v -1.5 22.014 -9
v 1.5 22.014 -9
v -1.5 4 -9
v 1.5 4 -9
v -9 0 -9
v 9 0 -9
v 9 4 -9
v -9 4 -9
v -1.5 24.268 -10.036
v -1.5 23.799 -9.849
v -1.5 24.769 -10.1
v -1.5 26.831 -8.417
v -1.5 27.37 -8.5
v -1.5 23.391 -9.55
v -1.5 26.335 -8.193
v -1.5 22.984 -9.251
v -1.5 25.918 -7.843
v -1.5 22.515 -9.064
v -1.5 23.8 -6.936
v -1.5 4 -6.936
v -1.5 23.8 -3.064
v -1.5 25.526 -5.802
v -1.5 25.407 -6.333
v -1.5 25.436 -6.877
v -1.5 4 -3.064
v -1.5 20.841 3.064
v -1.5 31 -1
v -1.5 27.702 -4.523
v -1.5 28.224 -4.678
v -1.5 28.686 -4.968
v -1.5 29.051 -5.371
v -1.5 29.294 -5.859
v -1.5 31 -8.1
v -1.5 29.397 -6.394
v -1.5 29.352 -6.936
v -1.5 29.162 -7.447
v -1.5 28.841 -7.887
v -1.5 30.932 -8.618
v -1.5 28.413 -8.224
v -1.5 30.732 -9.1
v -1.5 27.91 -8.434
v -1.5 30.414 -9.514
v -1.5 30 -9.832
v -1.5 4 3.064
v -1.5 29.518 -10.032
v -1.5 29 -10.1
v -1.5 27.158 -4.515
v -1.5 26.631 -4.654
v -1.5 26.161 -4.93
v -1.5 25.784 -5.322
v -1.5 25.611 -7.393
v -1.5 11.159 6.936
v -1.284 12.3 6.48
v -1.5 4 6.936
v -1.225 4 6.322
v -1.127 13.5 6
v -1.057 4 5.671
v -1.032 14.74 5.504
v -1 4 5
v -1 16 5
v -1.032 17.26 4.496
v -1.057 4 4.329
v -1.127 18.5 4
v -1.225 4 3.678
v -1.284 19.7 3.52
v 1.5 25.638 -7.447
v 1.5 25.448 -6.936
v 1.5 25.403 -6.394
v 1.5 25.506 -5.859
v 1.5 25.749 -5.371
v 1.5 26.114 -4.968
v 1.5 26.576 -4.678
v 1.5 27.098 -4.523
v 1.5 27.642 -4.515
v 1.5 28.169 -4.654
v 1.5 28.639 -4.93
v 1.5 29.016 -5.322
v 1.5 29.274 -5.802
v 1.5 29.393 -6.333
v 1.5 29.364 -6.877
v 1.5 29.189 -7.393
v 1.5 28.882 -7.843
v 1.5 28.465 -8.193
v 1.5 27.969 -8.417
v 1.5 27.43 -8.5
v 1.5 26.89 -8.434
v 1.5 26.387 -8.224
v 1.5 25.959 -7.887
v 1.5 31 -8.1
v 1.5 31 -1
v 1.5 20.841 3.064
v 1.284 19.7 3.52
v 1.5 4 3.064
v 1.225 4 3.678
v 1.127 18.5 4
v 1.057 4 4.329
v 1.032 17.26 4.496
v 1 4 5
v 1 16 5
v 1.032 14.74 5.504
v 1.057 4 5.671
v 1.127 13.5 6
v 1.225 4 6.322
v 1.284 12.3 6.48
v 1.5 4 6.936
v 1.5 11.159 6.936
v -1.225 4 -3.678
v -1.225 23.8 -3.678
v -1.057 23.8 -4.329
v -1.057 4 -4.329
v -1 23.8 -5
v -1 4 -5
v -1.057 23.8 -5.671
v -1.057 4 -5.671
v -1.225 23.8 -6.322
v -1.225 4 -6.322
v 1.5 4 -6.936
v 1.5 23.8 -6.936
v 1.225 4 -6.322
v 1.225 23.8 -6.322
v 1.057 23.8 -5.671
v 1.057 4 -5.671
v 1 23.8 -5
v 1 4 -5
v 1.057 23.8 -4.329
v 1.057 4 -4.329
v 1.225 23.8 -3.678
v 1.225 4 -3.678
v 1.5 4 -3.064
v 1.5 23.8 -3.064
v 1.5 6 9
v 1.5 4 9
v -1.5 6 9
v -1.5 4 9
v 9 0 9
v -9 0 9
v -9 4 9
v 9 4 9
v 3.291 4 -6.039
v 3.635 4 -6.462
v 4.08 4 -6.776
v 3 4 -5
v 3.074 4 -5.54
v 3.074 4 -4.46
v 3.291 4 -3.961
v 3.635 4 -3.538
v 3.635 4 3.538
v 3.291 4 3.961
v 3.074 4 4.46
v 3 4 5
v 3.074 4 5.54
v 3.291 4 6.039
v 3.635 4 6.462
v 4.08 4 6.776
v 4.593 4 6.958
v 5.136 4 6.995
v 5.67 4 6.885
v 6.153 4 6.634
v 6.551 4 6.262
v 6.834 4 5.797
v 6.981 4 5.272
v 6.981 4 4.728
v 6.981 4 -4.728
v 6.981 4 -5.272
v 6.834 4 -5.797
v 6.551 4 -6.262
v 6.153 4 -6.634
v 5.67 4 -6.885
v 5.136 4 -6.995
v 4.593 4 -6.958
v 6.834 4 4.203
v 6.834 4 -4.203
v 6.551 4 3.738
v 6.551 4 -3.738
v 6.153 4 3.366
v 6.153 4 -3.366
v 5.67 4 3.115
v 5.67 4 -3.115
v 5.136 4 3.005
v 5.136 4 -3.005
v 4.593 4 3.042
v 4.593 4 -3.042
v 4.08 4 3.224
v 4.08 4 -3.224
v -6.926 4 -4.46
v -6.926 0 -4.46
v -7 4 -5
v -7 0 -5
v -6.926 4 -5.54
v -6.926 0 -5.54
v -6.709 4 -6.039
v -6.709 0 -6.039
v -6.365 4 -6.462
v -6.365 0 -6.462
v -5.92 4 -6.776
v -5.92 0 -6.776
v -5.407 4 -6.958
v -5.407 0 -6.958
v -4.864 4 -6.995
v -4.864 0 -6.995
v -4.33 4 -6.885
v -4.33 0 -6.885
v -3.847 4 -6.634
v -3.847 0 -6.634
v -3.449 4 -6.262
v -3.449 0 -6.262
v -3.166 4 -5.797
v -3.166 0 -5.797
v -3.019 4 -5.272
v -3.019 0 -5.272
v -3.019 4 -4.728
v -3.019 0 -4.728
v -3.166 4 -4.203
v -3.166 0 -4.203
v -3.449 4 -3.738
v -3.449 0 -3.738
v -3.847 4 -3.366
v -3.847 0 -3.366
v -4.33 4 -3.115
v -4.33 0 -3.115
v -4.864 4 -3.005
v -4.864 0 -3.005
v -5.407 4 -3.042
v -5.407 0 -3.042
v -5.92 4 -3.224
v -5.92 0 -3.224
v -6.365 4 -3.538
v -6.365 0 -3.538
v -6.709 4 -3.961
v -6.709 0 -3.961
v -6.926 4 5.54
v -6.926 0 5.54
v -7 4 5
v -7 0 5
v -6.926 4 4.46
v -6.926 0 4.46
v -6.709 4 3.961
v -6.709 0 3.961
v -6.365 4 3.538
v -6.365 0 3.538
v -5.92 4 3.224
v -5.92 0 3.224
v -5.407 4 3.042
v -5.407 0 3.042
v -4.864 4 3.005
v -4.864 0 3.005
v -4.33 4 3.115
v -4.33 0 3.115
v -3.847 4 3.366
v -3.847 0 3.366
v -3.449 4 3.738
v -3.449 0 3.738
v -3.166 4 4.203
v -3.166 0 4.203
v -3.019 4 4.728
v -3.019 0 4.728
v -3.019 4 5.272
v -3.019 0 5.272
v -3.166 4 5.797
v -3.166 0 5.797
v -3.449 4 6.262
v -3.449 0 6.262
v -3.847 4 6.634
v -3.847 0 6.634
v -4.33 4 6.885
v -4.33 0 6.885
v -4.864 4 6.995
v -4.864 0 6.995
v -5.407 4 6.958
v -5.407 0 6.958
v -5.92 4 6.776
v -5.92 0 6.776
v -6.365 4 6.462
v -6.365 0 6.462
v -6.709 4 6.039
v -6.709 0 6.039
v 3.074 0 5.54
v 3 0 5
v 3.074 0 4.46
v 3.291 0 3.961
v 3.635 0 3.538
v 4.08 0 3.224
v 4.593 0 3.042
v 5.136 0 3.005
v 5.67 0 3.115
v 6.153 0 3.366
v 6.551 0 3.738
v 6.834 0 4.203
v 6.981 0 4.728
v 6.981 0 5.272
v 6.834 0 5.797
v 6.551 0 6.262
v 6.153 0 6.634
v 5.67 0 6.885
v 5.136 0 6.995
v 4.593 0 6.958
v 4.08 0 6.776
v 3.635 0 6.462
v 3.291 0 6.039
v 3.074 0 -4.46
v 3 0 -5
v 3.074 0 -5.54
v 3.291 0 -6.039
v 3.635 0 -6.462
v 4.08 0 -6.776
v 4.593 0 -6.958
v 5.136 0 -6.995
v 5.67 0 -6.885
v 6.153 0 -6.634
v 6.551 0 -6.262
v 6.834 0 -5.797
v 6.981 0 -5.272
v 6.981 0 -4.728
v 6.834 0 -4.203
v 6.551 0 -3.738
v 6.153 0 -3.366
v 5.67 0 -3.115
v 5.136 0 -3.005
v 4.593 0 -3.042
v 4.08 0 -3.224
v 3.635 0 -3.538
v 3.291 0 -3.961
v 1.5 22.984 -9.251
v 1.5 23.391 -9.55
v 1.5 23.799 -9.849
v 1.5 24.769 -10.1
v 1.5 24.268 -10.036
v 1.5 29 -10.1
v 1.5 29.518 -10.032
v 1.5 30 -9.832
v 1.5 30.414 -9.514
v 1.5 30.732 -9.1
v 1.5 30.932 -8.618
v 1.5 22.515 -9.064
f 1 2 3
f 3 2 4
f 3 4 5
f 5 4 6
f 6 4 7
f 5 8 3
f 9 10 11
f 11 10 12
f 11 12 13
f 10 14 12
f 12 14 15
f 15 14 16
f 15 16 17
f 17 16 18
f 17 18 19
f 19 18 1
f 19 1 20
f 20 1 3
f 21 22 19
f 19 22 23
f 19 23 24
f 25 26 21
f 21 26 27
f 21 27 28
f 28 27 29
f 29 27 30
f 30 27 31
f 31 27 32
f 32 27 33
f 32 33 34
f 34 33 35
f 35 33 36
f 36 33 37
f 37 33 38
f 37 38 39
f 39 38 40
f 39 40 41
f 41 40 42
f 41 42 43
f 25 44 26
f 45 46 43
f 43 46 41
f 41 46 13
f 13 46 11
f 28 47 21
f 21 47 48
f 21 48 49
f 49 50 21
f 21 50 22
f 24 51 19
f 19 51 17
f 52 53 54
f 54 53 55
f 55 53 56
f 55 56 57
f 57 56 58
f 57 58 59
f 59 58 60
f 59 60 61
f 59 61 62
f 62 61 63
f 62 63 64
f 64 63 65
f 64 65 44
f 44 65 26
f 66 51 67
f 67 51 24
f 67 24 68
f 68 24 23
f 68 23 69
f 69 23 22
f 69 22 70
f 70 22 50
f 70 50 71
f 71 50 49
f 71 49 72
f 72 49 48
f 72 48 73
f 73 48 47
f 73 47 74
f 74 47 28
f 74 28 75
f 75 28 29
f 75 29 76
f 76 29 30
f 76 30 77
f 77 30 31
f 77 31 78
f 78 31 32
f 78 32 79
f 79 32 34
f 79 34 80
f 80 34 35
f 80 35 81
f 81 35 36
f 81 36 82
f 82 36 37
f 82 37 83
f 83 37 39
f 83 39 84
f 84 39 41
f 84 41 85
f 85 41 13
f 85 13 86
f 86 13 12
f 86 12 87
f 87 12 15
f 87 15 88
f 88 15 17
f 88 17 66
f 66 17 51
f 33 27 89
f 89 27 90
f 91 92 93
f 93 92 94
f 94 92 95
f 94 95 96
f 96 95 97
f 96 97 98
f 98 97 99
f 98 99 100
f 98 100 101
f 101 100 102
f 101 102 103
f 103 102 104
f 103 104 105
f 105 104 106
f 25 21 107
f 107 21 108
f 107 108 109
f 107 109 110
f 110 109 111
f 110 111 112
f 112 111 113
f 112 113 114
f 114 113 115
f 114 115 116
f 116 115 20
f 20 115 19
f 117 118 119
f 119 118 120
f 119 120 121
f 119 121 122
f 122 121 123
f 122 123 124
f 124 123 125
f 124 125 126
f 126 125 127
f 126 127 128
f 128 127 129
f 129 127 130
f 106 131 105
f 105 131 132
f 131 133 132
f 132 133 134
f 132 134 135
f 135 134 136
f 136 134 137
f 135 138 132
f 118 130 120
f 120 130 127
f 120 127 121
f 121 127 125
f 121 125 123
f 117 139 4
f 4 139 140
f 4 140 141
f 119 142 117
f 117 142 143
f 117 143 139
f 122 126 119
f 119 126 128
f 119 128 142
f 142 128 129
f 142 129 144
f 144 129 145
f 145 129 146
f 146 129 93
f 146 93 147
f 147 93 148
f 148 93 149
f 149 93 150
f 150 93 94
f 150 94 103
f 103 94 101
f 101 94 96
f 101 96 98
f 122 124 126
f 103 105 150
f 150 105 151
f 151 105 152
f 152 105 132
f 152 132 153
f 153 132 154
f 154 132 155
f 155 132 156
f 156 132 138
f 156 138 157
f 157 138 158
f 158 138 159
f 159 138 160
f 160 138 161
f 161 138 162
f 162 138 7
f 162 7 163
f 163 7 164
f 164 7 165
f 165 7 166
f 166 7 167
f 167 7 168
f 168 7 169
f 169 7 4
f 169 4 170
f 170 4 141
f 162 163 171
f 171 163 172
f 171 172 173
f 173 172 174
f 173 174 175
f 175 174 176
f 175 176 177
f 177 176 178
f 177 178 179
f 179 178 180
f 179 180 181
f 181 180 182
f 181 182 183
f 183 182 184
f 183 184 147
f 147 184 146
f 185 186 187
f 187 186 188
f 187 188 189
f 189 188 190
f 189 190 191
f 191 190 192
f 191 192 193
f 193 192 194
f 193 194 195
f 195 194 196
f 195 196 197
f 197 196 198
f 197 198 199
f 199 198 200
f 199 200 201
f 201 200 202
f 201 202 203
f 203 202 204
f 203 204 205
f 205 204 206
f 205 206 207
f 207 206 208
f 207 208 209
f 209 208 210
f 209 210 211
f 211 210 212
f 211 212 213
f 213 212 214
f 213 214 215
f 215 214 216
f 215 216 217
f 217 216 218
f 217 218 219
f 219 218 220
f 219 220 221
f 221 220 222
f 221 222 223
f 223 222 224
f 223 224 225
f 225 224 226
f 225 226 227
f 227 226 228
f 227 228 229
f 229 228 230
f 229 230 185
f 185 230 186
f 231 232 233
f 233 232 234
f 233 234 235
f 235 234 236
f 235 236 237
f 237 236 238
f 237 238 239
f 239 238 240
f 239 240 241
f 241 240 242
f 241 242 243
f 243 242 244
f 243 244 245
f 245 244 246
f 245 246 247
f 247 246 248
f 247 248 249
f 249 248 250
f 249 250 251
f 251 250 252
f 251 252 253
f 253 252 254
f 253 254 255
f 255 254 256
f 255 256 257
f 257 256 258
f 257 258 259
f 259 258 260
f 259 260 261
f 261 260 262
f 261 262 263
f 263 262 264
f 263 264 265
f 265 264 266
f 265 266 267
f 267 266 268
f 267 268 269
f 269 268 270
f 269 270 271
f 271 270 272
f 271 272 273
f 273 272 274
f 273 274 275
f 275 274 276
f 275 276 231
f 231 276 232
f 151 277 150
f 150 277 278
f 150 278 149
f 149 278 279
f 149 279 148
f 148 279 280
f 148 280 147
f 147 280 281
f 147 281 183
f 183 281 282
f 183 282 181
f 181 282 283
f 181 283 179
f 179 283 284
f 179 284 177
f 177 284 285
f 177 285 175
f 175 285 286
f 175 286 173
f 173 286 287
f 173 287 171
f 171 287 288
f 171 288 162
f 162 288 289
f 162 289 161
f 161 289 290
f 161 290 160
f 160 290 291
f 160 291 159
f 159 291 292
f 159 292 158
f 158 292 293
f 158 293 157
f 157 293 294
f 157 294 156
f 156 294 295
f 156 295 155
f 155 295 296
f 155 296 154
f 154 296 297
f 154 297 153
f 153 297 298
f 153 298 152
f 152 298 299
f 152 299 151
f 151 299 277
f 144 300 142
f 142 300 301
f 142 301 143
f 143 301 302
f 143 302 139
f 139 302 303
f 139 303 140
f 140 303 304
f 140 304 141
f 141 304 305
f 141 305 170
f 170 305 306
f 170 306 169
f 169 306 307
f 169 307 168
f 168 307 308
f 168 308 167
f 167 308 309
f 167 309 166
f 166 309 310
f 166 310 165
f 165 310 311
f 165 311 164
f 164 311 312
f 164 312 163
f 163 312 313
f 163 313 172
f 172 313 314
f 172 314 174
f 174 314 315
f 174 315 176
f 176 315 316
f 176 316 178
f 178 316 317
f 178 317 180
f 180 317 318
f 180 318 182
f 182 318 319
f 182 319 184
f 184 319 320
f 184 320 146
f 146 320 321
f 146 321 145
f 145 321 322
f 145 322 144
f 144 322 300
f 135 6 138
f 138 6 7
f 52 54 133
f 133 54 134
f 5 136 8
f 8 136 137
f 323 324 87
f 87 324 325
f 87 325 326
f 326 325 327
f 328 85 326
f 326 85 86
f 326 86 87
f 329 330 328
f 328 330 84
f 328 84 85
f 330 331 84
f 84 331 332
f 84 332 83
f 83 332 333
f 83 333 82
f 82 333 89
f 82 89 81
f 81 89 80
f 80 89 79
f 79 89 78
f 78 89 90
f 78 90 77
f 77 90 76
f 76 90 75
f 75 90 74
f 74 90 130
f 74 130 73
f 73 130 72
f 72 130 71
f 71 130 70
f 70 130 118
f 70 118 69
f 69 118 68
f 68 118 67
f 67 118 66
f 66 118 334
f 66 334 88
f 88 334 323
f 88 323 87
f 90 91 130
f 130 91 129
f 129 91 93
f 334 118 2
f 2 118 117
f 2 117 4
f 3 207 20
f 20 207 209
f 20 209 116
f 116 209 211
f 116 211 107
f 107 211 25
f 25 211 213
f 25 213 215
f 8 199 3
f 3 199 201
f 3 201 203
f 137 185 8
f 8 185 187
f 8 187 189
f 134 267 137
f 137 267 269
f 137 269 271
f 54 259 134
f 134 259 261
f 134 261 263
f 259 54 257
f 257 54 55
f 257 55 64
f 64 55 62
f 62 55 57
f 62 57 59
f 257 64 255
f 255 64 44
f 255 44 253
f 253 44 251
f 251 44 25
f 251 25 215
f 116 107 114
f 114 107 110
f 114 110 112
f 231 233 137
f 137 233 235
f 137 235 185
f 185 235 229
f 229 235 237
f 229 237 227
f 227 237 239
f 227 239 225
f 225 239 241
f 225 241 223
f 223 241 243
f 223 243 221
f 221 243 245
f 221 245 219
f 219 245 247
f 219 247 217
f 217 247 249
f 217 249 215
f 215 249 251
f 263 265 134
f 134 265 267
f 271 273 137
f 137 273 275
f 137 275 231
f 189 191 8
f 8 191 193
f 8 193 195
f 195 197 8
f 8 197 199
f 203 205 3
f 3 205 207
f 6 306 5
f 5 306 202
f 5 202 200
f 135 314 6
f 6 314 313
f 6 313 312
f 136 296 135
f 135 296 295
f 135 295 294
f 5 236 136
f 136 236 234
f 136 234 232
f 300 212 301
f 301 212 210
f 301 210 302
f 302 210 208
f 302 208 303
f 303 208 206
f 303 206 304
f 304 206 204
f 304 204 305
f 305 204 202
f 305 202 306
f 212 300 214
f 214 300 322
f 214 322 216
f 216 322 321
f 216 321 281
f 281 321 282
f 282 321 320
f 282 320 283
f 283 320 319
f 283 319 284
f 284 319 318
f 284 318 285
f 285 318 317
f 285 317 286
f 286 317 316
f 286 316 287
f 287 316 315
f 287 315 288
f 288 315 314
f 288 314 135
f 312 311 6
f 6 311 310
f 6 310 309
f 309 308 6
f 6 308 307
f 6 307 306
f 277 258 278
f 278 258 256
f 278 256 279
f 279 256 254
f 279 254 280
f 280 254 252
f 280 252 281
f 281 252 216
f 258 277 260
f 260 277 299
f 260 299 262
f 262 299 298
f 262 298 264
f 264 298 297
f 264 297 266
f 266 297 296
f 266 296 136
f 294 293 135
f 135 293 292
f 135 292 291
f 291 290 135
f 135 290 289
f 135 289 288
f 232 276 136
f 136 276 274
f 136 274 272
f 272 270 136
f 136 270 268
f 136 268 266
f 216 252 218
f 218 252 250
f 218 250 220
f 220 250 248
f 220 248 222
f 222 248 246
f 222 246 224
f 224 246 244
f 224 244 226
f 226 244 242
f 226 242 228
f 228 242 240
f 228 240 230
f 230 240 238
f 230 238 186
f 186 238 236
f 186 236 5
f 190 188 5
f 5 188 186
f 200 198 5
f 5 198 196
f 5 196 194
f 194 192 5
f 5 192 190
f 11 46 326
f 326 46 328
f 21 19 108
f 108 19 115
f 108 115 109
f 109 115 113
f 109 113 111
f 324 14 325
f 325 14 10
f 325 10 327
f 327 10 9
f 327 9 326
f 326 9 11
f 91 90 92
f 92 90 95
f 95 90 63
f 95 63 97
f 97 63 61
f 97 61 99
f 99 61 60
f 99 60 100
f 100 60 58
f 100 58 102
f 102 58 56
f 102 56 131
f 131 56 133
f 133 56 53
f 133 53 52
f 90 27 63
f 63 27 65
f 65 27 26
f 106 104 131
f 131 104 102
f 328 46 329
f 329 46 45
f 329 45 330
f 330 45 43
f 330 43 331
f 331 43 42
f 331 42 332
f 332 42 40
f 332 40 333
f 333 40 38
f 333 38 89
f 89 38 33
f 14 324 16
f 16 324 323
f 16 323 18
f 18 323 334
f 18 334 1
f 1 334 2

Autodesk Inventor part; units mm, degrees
ref_plane "YZ Plane" through (0, 0, 0) normal (1, 0, 0) x (0, 1, 0)
ref_plane "XZ Plane" through (0, 0, 0) normal (0, 1, 0) x (-1, 0, 0)
ref_plane "XY Plane" through (0, 0, 0) normal (0, 0, 1) x (1, 0, 0)
sketch "Sketch1" plane through (0, 0, 0) normal (0, 1, 0) x (-1, 0, 0)
  line L0 (-5, 5) -> (5, 5)
  line L1 (5, 5) -> (5, -5)
  line L2 (5, -5) -> (-5, -5)
  line L3 (-5, -5) -> (-5, 5)
  line L4 (-5, 5) -> (5, -5) construction
  line L5 (5, 5) -> (-5, -5) construction
  circle A0 centre (5, 5) radius 2
  circle A1 centre (5, -5) radius 2
  circle A2 centre (-5, 5) radius 2
  circle A3 centre (-5, -5) radius 2
  line L6 (-9, 9) -> (9, 9)
  line L7 (9, 9) -> (9, -9)
  line L8 (9, -9) -> (-9, -9)
  line L9 (-9, -9) -> (-9, 9)
  line L10 (-9, 9) -> (9, -9) construction
  line L11 (9, 9) -> (-9, -9) construction
  point P0 (0, 0)
  dimension "d0" = 10
  dimension "d1" = 10
  dimension "d2" = 4
  dimension "d3" = 4
  dimension "d4" = 4
  dimension "d5" = 4
  dimension "d6" = 18
  dimension "d7" = 18
extrude "Extrusion1" add sketch "Sketch1" along normal blind 4 contours L0 A0 L1 A1 L2 A3 L3 A2 | L6 L7 L8 L9
sketch "Sketch2" plane through (0, 4, 0) normal (0, 1, 0) x (1, 0, 0)
  line L0 (9, 9) -> (-9, 9) projected
  line L1 (1.5, -9) -> (-1.5, -9)
  line L2 (-1.5, -9) -> (-1.5, 9)
  line L3 (-1.5, 9) -> (1.5, 9)
  line L4 (1.5, 9) -> (1.5, -9)
  line L5 (1.5, -9) -> (-1.5, 9) construction
  line L6 (-1.5, -9) -> (1.5, 9) construction
  circle A0 centre (-5, -5) radius 2 projected
  circle A1 centre (-5, -5) radius 4
  circle A2 centre (-5, 5) radius 2 projected
  circle A3 centre (-5, 5) radius 4
  circle A4 centre (5, -5) radius 2 projected
  circle A5 centre (5, -5) radius 4
  circle A6 centre (5, 5) radius 2 projected
  circle A7 centre (5, 5) radius 4
  point P0 (0, 0)
  point P1 (1.5, -6.9365)
  point P2 (1.5, -3.0635)
  point P3 (1.5, 3.0635)
  point P4 (1.5, 6.9365)
  point P5 (-1.5, 6.9365)
  point P6 (-1.5, 3.0635)
  point P7 (-1.5, -3.0635)
  point P8 (-1.5, -6.9365)
  dimension "d10" = 3
  dimension "d11" = 8
  dimension "d12" = 8
  dimension "d13" = 8
  dimension "d14" = 8
extrude "Extrusion2" add sketch "Sketch2" along normal blind 27 contours L4 A7 A5 L1 L2 A1 A3 L0
sketch "Sketch3" plane through (1.5, 4, 3.0635) normal (1, 0, 0) x (0, 0, -1)
  line L0 (-5.9365, -4) -> (-5.9365, 0) projected
  line L1 (-5.9365, -4) -> (-5.9365, 23.4)
  line L2 (-5.9365, 0) -> (-5.9365, 27) projected
  line L3 (-5.9365, 23.4) -> (12.0635, 23.4)
  line L4 (12.0635, 0) -> (12.0635, 27) projected
  line L5 (12.0635, 23.4) -> (9.5635, 23.4)
  circle A0 centre (9.5635, 23.4) radius 2
  line L6 (5.9635, 19.8) -> (13.1635, 19.8)
  line L7 (13.1635, 19.8) -> (13.1635, 27)
  line L8 (13.1635, 27) -> (5.9635, 27)
  line L9 (5.9635, 27) -> (5.9635, 19.8)
  line L10 (5.9635, 19.8) -> (13.1635, 27) construction
  line L11 (13.1635, 19.8) -> (5.9635, 27) construction
  point P0 (3.0635, -4)
  dimension "d17" = 27.4
  dimension "d18" = 2.5
  dimension "d19" = 4
  dimension "d20" = 7.2
extrude "Extrusion3" add sketch "Sketch3" against normal up to surface (3 mm away) contours A0 L3 L9 L8 L4 | L3 L4 L6 L9 A0 | L4 L8 L7 L6
extrude "Extrusion4" cut sketch "Sketch3" against normal blind 10 contours L3 A0 | L3 A0
chamfer "Chamfer1" distance 10 distance2 25 1 edges at (0, 31, 9) measured on face at (-0.5, 31, -5.7122)
fillet "Fillet1" radius 2 3 edges at (0, 31, -10.1) (0, 23.8, -10.1) (0, 23.8, -9)
properties part number "link1"
